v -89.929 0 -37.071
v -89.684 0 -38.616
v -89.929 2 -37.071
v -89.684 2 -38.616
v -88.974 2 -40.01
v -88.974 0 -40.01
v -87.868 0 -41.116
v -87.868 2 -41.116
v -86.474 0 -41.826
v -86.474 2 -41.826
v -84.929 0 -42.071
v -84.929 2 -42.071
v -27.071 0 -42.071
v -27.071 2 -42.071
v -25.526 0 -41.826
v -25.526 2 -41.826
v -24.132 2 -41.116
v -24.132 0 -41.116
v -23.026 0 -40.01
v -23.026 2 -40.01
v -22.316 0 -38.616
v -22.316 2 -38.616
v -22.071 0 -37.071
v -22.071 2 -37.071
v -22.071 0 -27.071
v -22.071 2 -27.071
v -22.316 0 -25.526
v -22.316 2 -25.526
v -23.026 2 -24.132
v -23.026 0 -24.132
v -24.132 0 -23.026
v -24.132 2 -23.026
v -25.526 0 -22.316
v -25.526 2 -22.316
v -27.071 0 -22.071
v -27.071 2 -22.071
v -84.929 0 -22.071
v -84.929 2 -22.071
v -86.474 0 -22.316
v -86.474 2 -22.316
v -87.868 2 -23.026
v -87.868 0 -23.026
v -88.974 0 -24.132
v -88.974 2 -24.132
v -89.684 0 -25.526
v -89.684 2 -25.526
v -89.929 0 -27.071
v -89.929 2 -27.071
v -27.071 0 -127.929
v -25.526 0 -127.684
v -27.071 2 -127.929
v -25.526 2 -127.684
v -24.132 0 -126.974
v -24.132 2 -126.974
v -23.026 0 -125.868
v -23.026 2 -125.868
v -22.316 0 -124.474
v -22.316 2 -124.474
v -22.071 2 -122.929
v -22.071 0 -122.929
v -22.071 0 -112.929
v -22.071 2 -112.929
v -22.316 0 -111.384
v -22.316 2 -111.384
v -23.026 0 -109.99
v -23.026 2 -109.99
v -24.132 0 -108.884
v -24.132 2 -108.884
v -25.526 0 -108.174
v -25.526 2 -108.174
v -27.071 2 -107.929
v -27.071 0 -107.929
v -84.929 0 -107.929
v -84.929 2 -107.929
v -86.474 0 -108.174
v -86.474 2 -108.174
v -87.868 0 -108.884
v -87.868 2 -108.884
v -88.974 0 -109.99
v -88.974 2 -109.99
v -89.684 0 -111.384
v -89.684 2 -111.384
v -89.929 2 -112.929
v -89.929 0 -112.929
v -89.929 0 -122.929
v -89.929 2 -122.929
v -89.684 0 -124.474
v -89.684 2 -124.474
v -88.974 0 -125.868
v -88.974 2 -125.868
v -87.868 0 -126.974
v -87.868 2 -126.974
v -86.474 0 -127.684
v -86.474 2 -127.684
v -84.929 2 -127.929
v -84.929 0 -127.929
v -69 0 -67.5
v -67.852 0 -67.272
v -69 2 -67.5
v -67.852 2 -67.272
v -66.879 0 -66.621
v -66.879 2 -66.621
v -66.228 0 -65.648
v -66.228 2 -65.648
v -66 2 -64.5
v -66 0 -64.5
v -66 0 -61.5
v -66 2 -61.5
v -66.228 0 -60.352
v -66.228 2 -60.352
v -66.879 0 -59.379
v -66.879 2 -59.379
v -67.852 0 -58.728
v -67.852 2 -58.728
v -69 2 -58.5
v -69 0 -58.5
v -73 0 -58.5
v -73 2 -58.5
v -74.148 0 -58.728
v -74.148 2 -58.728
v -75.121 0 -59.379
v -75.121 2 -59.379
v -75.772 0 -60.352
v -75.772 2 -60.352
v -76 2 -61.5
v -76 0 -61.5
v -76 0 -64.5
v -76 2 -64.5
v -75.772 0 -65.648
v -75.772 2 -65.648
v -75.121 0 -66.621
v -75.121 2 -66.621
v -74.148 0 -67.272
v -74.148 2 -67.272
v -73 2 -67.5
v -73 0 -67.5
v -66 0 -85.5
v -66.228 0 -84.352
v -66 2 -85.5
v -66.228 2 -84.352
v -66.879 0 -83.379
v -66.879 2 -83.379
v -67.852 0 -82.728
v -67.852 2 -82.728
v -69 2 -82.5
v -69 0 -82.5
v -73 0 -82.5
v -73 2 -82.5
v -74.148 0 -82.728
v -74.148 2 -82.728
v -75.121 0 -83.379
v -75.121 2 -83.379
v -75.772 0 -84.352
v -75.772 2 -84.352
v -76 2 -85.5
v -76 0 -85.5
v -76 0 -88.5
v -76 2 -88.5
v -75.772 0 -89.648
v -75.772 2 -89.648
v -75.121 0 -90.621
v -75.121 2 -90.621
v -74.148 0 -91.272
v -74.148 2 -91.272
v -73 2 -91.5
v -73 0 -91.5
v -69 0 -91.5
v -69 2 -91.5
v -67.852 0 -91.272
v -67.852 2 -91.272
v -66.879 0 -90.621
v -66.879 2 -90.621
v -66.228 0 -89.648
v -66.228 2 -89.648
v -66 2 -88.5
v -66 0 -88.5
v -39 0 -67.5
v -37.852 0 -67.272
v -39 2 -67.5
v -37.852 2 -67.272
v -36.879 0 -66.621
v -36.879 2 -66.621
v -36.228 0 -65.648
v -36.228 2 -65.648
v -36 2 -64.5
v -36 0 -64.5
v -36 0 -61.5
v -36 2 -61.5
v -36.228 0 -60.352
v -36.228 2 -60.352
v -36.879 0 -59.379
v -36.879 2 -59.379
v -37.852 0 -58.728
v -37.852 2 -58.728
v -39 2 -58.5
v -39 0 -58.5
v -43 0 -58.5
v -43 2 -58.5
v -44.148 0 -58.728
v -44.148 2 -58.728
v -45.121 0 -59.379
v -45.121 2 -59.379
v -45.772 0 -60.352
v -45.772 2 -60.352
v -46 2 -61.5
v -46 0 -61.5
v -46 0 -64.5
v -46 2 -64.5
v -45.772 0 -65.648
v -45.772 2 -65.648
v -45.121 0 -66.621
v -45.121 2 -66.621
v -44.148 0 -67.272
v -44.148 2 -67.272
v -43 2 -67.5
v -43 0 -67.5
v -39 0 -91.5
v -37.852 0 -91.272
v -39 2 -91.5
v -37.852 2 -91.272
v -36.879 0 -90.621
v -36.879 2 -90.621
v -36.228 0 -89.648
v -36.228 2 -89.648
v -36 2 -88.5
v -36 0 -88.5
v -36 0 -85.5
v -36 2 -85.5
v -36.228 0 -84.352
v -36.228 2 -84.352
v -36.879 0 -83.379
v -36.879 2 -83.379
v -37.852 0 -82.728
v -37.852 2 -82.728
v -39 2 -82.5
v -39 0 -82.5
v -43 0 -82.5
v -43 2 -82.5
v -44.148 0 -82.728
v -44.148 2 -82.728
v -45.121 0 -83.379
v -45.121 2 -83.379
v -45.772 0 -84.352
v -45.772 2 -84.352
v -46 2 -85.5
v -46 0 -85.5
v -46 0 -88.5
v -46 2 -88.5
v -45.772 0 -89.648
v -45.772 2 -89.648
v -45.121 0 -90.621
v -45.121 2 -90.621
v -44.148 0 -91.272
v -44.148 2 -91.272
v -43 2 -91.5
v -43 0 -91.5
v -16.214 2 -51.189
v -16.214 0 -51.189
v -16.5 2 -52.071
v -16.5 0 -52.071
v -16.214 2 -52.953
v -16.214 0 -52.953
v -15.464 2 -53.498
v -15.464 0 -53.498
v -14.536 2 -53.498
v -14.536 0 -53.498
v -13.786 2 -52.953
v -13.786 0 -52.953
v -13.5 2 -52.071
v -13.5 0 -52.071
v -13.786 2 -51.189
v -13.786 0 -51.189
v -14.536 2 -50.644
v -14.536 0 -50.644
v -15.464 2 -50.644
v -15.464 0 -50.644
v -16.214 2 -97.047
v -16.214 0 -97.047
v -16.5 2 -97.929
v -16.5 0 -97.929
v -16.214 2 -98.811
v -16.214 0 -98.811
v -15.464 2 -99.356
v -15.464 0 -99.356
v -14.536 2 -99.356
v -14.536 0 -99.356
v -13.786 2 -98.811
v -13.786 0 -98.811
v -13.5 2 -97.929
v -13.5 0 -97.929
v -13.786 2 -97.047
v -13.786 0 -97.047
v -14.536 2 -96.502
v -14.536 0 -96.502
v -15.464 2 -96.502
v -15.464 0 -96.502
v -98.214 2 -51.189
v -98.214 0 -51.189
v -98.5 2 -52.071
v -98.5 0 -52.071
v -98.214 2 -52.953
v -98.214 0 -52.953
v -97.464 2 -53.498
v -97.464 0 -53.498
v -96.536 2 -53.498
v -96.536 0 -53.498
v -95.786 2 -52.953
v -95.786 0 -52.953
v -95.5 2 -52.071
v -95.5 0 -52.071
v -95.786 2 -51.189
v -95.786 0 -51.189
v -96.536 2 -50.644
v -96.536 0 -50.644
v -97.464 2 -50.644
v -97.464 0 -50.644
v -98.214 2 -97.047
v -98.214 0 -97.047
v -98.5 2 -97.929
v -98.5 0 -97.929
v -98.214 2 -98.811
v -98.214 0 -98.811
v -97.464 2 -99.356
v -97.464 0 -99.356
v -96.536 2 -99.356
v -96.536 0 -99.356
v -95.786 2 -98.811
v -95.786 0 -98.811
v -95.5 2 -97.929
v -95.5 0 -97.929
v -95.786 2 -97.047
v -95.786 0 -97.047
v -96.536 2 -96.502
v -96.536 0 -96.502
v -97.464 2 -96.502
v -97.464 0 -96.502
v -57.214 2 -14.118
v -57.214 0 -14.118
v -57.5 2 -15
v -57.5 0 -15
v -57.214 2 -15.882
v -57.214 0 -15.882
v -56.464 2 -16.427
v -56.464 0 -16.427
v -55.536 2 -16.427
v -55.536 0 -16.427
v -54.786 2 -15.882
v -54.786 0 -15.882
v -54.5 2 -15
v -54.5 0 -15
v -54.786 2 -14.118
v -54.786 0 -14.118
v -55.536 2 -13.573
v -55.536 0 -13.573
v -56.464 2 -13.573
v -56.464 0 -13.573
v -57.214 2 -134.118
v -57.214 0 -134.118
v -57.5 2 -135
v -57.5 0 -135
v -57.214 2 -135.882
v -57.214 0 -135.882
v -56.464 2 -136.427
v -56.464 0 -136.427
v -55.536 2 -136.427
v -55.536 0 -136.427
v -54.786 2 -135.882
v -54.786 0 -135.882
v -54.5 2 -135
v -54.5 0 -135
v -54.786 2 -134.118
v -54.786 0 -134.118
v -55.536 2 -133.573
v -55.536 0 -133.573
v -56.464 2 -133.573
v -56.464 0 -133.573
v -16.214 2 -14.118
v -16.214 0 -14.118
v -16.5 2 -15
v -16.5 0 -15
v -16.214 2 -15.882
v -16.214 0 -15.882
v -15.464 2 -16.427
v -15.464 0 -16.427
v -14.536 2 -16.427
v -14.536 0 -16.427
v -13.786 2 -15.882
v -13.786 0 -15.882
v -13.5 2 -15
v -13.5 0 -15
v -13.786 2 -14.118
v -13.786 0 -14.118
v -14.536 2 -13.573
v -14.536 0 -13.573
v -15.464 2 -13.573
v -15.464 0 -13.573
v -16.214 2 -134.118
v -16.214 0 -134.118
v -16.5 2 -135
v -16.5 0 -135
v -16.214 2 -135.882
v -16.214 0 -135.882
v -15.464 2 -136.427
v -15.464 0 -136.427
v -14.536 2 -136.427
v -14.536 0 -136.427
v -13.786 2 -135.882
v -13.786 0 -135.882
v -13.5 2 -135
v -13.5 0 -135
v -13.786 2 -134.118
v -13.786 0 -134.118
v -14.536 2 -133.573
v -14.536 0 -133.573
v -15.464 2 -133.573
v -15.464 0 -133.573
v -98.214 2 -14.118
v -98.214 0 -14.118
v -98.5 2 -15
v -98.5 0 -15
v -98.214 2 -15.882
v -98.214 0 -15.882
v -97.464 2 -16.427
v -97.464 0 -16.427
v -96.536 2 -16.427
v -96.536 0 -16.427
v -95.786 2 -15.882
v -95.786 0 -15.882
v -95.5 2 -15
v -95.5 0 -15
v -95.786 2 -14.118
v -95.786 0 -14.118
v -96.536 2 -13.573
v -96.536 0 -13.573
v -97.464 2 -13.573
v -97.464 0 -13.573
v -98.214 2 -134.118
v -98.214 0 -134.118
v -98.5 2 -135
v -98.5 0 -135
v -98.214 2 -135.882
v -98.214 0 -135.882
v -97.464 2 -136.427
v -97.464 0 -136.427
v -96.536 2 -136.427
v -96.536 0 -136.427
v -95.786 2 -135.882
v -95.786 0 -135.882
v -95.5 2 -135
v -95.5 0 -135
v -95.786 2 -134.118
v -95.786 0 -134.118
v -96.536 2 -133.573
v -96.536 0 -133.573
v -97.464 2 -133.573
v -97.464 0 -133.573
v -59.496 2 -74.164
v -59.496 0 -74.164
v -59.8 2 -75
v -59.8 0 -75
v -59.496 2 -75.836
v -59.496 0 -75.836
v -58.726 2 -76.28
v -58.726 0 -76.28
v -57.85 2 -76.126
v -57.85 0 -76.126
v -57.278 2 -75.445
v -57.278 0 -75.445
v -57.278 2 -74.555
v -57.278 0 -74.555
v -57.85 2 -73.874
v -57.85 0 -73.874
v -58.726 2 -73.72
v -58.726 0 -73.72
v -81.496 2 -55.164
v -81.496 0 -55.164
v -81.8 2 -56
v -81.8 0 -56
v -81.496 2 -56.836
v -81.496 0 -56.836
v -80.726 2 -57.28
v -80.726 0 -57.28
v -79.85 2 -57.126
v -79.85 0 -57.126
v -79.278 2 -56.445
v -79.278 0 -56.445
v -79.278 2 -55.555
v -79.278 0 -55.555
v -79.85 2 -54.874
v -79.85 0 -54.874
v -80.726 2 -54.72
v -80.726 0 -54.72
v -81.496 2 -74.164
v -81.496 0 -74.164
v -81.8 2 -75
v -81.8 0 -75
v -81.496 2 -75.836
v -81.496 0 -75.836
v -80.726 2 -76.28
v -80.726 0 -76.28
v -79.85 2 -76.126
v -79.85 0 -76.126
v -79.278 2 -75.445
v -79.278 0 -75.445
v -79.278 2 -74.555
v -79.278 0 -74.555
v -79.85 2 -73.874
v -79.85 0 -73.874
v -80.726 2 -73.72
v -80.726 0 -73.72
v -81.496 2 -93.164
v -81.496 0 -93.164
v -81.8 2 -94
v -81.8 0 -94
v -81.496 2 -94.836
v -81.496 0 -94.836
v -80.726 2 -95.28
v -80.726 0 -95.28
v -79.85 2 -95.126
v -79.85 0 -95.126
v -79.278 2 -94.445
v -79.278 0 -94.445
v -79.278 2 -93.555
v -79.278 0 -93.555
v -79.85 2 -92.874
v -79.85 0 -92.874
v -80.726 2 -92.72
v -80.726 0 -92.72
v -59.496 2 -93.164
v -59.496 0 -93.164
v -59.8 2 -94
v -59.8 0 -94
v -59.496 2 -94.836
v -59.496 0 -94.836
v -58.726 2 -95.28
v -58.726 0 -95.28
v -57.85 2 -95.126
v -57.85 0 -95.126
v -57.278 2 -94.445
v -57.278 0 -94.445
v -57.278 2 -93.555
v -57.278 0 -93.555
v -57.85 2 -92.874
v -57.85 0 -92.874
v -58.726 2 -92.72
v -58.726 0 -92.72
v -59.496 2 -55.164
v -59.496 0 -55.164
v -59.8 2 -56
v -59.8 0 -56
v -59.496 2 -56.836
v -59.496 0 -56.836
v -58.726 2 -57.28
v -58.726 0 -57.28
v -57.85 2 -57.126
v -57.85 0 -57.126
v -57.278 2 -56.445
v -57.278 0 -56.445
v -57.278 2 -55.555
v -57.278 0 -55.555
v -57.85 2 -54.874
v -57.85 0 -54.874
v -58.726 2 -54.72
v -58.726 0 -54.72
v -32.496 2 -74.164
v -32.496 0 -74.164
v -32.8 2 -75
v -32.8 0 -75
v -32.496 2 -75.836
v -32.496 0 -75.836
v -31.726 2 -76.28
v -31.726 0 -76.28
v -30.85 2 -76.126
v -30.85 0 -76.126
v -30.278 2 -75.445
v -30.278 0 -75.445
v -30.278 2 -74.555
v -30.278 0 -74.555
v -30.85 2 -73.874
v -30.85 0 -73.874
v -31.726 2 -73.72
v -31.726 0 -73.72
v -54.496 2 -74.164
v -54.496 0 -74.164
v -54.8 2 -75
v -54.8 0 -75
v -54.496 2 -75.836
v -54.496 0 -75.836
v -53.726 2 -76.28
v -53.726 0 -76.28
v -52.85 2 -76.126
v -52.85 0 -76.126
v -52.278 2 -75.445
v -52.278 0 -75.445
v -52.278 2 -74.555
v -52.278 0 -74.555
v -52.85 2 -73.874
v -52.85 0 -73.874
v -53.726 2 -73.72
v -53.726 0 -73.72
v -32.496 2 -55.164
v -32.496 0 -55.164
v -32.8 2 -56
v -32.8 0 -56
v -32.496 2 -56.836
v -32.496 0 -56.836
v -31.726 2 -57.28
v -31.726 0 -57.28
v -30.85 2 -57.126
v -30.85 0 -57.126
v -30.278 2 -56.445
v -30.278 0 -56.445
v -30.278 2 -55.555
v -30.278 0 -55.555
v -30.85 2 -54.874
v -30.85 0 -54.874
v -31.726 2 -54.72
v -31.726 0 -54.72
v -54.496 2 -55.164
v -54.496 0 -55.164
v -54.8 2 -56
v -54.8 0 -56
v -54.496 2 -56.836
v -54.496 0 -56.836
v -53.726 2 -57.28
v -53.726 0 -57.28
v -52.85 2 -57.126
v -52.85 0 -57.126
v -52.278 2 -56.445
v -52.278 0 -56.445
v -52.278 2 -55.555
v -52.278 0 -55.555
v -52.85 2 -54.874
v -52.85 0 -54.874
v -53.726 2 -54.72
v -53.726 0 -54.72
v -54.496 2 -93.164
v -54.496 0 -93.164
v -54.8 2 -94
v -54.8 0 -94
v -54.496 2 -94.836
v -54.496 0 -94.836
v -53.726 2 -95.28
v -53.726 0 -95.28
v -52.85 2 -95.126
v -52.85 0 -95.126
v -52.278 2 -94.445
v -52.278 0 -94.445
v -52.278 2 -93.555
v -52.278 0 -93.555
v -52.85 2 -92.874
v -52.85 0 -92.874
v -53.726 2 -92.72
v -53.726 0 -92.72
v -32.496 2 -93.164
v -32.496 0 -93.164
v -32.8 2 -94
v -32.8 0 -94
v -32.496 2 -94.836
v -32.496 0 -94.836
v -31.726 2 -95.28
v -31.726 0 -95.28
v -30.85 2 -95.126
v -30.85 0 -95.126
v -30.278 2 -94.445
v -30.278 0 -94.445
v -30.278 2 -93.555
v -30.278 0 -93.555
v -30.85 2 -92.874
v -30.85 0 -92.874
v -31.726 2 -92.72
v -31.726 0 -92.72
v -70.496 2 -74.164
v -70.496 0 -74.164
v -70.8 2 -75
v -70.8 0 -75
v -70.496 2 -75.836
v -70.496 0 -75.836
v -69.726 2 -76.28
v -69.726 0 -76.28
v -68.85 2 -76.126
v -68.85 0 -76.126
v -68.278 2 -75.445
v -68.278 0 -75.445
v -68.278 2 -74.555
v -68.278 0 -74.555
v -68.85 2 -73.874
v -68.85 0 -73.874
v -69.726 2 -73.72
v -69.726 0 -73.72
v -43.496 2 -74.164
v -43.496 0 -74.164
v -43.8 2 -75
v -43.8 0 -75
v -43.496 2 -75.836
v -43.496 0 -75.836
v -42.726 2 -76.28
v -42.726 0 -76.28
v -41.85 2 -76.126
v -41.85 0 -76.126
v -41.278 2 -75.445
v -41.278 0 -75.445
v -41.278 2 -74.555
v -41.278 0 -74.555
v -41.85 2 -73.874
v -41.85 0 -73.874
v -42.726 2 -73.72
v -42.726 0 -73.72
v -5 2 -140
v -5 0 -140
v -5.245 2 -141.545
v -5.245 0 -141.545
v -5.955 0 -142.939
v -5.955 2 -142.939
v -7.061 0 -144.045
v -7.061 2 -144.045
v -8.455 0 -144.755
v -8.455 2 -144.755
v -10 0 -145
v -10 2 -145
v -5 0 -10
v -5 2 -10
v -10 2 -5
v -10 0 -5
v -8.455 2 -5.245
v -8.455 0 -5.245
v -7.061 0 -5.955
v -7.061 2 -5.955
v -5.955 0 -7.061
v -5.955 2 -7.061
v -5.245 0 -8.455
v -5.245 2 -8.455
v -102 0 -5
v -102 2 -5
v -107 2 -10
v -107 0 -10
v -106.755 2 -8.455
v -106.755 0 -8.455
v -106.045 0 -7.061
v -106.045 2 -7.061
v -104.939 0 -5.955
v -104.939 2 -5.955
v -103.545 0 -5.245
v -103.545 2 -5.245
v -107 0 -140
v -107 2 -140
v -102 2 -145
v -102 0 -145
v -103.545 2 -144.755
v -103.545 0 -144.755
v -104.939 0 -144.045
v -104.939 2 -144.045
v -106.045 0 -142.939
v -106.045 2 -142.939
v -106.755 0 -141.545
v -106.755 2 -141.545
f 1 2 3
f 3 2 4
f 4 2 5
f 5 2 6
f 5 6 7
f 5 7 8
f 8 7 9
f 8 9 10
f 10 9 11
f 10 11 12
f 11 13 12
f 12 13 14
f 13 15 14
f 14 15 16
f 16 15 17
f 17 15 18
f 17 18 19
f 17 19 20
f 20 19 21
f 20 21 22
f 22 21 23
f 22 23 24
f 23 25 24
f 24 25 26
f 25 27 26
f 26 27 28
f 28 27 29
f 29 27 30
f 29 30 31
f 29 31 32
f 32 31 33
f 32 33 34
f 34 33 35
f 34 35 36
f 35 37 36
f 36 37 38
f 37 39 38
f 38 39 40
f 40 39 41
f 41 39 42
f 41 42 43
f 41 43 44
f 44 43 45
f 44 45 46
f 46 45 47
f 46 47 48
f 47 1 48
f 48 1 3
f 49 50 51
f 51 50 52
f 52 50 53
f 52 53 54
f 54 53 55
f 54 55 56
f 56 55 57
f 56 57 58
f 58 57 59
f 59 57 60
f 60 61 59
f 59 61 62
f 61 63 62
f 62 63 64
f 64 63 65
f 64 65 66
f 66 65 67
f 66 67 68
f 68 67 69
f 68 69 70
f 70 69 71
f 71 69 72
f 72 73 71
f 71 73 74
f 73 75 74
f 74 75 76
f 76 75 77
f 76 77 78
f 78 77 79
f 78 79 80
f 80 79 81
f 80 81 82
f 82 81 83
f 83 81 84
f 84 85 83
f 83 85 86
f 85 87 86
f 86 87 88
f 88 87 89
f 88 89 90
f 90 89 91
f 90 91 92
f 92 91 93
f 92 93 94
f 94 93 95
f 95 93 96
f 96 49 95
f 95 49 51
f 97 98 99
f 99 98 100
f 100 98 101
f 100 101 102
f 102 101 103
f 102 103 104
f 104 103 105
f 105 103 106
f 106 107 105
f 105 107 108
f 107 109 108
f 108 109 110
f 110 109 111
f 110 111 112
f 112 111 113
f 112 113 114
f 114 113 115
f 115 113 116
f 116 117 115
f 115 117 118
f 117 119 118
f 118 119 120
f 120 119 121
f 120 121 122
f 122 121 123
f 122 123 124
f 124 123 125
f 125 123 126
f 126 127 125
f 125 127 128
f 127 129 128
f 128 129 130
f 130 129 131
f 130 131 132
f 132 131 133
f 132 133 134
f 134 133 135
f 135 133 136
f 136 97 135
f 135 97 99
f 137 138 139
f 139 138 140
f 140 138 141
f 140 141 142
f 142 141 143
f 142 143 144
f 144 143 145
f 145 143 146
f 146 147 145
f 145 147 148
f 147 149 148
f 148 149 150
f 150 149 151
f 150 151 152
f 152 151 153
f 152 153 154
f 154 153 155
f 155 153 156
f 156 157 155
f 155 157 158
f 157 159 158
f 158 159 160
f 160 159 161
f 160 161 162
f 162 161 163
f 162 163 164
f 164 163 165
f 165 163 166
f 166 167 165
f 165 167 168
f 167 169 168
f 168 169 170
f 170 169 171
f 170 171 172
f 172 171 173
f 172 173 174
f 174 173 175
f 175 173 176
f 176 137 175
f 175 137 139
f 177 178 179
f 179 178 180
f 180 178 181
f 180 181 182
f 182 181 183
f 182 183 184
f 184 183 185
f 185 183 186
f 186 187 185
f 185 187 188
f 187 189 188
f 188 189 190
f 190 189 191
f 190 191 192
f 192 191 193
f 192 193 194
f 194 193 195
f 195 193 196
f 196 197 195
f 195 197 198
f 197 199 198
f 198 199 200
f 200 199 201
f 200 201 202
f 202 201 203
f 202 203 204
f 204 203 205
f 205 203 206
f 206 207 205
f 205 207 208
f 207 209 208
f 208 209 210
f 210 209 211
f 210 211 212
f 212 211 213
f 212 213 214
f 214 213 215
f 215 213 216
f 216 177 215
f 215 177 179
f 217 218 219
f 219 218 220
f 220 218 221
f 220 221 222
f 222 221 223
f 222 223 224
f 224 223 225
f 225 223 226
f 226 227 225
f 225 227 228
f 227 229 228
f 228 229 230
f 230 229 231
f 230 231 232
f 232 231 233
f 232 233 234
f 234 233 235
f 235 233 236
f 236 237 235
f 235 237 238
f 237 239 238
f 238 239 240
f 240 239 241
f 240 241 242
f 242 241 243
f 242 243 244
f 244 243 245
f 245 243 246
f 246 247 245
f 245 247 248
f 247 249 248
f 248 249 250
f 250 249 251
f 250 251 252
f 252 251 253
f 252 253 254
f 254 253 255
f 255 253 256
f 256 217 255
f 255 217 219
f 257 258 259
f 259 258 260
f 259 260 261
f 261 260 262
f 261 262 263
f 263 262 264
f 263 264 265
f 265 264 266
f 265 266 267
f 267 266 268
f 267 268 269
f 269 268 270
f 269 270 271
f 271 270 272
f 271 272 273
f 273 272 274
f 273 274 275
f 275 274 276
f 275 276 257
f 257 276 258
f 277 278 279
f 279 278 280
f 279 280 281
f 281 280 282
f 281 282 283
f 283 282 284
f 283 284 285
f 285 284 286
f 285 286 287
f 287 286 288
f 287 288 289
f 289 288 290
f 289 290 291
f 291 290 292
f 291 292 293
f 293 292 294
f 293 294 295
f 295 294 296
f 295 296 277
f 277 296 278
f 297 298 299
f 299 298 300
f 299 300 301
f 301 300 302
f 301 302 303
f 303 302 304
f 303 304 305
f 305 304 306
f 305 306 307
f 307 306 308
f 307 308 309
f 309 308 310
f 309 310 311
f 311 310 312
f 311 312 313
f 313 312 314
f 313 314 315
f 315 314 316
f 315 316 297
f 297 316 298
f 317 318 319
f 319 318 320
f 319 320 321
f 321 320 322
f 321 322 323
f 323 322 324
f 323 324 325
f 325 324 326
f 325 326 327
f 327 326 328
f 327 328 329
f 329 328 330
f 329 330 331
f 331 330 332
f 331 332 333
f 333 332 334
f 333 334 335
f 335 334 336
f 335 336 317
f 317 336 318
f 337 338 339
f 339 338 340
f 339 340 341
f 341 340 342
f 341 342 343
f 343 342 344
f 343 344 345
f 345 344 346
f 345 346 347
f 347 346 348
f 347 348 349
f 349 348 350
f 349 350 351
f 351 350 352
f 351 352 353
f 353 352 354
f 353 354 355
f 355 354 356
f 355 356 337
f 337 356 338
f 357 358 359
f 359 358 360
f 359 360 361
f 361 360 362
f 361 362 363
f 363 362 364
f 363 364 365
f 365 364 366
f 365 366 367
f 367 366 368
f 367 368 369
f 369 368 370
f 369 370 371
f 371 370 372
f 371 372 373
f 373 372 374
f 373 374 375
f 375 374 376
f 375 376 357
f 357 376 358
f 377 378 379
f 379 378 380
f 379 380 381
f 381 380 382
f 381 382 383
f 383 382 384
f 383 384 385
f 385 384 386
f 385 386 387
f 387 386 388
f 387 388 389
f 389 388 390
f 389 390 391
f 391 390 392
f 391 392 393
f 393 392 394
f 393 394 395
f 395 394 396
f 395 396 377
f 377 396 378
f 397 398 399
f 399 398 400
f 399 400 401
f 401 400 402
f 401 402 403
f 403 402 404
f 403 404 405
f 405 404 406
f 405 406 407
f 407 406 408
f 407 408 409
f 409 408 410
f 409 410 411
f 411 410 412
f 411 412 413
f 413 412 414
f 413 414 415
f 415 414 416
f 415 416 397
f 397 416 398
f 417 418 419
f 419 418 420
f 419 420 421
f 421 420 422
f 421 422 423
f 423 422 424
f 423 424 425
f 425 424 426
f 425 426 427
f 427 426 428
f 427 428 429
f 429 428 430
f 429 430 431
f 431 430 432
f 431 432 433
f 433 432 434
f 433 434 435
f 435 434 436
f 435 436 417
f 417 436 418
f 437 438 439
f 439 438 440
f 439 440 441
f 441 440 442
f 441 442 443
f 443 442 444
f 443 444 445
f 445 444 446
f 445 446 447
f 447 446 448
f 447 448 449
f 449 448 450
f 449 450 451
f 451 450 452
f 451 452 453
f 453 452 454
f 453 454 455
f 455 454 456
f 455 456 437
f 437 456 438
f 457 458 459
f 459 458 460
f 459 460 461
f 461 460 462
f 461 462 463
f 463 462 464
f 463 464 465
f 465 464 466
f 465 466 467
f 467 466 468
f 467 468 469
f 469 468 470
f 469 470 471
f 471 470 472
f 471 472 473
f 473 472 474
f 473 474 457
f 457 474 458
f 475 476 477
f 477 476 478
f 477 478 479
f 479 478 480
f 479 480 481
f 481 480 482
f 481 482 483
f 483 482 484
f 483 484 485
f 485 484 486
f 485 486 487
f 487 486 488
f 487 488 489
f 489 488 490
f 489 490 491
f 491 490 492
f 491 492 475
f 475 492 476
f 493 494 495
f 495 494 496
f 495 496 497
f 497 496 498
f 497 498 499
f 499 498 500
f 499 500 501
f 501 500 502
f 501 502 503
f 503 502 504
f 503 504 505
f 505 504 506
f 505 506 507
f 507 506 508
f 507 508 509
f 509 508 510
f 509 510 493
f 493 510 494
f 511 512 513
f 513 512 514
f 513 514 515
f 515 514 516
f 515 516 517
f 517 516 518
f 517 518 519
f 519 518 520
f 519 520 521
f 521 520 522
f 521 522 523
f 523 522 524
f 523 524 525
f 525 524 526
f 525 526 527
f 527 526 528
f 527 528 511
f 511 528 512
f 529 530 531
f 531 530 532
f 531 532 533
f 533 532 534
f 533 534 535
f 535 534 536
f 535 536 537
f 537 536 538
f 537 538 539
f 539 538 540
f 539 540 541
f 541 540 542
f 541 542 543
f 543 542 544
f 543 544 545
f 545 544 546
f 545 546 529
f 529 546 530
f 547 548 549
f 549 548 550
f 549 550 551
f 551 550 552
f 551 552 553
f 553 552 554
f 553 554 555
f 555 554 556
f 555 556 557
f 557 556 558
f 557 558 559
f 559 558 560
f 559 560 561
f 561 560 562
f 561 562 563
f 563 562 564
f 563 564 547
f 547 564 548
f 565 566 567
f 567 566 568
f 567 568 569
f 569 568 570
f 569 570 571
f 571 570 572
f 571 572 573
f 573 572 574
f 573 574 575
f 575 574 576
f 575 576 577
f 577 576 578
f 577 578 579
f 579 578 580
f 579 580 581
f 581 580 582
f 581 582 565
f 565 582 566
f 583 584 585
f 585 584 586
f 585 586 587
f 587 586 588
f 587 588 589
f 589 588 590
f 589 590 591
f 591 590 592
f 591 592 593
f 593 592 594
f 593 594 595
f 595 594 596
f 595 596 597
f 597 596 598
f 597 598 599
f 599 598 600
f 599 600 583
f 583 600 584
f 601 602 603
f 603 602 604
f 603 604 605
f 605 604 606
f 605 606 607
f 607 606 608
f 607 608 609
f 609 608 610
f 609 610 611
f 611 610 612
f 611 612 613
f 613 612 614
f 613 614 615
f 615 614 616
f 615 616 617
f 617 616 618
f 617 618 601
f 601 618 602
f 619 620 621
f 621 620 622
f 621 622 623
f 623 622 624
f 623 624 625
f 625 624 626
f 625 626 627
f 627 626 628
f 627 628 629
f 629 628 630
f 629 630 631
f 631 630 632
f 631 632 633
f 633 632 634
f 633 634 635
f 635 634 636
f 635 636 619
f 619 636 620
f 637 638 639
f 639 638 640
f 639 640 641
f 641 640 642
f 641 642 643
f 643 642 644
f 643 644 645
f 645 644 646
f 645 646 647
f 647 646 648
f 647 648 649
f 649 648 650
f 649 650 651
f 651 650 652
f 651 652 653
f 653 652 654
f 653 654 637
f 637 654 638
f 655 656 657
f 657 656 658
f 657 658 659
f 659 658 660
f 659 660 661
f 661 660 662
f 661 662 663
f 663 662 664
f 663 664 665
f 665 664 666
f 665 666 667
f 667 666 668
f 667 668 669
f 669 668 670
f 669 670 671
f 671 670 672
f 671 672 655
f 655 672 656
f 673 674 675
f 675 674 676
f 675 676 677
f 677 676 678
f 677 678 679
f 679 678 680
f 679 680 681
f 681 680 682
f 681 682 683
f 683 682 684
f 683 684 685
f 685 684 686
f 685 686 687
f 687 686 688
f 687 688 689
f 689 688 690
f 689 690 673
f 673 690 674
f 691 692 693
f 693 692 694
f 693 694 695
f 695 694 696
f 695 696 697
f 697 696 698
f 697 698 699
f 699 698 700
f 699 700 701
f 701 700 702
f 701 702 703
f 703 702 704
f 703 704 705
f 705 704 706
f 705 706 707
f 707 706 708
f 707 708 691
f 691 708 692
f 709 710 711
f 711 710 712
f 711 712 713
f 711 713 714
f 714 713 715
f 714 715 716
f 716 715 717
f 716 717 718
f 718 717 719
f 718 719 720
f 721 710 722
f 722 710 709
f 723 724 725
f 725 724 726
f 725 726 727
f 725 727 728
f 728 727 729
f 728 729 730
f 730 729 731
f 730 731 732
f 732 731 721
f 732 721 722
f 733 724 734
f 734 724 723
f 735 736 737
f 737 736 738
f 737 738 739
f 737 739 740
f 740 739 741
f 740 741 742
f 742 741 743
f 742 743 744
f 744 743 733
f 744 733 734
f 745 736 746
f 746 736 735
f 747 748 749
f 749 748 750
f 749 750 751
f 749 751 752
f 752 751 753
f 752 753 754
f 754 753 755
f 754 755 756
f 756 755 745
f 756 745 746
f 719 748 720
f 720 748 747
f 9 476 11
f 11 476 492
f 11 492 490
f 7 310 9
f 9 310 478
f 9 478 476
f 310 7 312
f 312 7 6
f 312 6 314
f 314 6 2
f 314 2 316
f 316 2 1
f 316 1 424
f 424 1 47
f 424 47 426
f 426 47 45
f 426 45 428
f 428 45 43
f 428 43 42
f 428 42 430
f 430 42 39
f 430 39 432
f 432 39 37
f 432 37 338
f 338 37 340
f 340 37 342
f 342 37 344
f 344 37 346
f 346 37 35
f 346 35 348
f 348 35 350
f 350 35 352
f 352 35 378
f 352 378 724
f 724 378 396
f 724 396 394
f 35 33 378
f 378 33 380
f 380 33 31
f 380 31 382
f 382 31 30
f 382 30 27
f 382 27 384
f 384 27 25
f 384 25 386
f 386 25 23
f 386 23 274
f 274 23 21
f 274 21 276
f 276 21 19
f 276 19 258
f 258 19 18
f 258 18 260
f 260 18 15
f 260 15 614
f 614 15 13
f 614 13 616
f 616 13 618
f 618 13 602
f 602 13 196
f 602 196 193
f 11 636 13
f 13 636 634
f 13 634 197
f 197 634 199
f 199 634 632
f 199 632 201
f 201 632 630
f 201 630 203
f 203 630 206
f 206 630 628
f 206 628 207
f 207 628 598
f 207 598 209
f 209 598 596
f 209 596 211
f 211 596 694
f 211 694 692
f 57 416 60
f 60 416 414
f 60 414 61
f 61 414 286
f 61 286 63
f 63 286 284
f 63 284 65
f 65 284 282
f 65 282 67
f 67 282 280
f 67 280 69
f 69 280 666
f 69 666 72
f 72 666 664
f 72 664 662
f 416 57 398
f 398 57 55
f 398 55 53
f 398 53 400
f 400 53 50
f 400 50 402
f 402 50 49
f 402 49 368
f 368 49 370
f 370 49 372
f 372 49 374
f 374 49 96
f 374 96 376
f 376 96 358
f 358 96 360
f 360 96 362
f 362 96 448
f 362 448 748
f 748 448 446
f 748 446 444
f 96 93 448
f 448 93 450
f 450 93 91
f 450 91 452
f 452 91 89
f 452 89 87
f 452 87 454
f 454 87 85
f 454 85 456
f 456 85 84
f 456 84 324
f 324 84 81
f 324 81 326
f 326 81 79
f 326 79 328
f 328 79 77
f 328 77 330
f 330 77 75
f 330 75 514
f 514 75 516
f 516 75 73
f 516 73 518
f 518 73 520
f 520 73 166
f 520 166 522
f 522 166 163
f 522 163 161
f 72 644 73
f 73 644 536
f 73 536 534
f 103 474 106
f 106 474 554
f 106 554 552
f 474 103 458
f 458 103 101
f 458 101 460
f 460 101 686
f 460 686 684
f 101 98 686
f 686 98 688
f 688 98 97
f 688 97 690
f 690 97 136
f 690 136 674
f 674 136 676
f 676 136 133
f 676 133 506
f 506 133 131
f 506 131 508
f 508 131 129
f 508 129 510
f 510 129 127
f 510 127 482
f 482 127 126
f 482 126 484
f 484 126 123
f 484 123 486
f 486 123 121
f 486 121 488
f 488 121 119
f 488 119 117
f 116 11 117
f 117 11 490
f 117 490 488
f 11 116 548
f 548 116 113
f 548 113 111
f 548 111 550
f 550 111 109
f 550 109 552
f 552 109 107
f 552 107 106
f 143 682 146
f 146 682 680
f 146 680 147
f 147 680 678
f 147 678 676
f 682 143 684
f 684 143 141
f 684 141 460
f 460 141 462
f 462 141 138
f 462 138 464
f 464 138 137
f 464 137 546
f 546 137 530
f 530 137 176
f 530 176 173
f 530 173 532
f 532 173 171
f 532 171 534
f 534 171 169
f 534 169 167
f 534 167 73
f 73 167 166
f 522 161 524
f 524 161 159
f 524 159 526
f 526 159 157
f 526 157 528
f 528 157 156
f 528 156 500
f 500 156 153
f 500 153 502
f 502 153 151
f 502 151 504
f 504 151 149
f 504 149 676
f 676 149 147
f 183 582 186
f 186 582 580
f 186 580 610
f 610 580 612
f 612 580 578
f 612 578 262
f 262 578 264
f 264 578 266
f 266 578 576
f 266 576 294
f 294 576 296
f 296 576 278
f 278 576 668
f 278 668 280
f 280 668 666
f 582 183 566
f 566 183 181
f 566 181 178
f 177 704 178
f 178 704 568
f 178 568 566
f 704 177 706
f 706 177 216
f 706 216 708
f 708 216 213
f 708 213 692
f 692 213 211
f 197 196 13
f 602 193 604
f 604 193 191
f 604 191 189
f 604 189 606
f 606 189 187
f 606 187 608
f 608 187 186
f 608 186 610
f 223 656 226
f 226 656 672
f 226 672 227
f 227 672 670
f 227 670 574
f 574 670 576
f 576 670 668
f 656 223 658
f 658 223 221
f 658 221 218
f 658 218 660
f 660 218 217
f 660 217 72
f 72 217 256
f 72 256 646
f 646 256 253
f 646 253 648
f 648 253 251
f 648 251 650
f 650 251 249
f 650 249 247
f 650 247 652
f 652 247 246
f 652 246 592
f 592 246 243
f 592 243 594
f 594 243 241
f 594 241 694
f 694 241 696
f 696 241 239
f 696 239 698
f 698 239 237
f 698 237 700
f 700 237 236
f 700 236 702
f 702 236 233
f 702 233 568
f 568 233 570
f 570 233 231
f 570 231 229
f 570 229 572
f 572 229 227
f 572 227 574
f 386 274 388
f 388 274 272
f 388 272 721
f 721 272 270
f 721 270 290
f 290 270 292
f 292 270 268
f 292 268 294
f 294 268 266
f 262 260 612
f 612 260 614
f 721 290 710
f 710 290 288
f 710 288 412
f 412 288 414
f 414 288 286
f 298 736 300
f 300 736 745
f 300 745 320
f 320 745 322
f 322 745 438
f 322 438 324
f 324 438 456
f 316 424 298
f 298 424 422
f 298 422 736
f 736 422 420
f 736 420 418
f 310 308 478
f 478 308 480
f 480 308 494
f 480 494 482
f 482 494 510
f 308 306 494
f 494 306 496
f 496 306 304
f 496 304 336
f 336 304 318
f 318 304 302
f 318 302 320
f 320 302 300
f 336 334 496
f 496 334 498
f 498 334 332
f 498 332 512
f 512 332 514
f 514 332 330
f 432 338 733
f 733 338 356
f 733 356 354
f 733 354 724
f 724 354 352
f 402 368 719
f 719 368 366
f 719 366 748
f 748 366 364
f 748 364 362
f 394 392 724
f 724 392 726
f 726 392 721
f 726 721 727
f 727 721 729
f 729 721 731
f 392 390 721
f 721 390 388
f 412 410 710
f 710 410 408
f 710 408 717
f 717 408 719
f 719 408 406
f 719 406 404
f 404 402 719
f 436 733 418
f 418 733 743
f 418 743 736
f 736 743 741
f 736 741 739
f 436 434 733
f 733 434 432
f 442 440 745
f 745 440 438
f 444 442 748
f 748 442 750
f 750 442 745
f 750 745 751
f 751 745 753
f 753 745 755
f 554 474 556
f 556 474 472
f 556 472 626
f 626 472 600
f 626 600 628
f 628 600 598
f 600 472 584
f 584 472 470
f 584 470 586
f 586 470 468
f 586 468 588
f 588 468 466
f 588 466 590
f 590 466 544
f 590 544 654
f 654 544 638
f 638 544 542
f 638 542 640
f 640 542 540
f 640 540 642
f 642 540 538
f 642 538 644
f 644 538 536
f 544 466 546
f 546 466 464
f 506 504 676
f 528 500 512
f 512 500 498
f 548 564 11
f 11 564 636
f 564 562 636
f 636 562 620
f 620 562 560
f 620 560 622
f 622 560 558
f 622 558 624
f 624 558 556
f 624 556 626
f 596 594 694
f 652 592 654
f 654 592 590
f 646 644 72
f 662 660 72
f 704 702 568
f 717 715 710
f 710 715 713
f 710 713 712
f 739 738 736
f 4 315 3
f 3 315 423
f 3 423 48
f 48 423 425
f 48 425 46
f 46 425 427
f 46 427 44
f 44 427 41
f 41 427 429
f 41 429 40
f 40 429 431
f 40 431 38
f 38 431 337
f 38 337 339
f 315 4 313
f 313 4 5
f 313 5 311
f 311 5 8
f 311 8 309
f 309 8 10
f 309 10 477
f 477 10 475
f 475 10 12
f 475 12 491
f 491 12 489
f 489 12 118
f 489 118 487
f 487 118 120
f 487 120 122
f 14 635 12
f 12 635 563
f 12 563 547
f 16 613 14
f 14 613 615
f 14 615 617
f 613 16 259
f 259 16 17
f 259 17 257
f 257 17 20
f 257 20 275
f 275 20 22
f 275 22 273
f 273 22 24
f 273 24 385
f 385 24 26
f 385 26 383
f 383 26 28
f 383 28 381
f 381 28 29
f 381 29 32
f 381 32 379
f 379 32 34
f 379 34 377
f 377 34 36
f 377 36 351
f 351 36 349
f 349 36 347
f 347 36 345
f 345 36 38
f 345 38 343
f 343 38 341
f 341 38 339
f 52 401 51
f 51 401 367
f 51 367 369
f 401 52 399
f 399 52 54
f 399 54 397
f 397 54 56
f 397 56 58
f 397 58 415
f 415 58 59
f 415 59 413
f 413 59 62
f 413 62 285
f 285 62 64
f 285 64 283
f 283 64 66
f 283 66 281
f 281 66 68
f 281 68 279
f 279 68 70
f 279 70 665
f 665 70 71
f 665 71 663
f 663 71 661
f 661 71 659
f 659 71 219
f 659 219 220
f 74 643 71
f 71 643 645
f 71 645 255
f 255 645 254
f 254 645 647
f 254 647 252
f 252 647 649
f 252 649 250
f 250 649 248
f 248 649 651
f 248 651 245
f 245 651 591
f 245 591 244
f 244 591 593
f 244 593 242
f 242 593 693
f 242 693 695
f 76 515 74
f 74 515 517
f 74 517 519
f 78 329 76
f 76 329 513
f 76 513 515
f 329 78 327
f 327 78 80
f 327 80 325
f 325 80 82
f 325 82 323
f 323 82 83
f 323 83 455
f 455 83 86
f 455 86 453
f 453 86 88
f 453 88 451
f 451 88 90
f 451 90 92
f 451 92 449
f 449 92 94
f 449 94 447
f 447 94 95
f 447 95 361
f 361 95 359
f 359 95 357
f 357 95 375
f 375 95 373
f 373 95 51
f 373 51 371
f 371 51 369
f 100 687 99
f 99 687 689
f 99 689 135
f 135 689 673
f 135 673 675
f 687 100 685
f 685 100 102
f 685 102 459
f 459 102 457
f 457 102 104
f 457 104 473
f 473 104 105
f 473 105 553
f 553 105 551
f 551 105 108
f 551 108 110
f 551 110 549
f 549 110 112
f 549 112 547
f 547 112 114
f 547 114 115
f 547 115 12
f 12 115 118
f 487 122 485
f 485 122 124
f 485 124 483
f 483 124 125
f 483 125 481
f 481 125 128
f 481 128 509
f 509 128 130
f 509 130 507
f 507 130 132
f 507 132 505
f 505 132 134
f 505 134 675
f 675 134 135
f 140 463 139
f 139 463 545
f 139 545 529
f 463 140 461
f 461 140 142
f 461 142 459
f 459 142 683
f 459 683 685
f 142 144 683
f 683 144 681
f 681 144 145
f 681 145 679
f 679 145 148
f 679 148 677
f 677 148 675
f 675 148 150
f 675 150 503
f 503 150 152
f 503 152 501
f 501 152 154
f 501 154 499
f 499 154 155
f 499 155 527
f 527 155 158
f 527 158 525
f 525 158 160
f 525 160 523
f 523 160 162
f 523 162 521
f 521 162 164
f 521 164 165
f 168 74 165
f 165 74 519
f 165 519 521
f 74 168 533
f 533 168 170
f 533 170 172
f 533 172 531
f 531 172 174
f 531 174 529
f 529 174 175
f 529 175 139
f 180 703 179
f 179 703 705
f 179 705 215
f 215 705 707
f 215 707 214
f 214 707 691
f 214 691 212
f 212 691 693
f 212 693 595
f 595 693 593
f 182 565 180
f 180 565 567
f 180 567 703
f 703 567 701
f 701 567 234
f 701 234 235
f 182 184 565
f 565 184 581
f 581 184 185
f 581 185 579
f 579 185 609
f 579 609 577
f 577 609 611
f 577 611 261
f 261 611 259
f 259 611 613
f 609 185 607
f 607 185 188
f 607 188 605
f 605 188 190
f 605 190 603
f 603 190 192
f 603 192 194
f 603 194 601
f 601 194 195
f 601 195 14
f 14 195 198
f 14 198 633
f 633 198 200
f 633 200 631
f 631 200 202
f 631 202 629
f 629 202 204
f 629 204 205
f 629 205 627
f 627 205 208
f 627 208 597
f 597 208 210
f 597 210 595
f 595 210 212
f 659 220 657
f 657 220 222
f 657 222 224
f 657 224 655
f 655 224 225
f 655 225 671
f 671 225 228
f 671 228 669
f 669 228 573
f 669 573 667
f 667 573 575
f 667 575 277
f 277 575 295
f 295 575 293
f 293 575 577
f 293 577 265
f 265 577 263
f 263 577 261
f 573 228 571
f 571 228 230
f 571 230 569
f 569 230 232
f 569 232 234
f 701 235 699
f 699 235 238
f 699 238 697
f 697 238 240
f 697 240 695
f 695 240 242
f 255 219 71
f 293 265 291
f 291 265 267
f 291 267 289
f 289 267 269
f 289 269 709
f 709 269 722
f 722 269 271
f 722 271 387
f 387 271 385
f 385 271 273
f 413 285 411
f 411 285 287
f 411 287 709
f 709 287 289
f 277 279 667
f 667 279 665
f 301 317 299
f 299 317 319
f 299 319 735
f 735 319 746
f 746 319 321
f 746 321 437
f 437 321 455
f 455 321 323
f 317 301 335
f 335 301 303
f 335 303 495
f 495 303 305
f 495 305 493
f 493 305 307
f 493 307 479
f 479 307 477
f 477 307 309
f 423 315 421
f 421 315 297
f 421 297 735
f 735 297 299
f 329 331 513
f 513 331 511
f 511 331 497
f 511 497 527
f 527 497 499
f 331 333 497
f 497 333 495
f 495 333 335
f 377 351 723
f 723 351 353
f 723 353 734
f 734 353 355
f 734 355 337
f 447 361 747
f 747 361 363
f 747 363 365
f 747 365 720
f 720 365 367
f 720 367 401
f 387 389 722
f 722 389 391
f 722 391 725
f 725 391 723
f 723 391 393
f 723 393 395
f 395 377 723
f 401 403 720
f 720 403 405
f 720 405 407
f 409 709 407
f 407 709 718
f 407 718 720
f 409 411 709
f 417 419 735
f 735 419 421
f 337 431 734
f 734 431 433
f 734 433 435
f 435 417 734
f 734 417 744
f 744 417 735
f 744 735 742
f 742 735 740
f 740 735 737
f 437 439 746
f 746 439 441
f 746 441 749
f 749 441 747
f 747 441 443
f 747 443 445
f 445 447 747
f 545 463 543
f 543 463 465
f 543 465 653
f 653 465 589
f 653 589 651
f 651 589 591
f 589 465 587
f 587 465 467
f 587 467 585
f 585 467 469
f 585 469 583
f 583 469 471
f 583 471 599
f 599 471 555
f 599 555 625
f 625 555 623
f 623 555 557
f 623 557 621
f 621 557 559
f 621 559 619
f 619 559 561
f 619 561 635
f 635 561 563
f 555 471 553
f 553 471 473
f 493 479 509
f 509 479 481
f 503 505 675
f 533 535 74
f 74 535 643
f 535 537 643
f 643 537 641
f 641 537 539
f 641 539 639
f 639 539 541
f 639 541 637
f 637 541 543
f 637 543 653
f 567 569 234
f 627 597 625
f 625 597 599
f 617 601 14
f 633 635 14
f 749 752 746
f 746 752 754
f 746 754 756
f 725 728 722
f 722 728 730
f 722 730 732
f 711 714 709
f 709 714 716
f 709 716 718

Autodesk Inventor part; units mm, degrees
ref_plane "YZ Plane" through (0, 0, 0) normal (1, 0, 0) x (0, 1, 0)
ref_plane "XZ Plane" through (0, 0, 0) normal (0, 1, 0) x (-1, 0, 0)
ref_plane "XY Plane" through (0, 0, 0) normal (0, 0, 1) x (1, 0, 0)
sketch "Sketch1" plane through (0, 0, 0) normal (0, 1, 0) x (-1, 0, 0)
  circle A0 centre (97, -135) radius 1.5
  circle A1 centre (97, -15) radius 1.5
  circle A2 centre (15, -135) radius 1.5
  circle A3 centre (15, -15) radius 1.5
  circle A4 centre (56, -135) radius 1.5
  circle A5 centre (56, -15) radius 1.5
  circle A6 centre (97, -97.9289) radius 1.5
  circle A7 centre (97, -52.0711) radius 1.5
  circle A8 centre (15, -97.9289) radius 1.5
  circle A9 centre (15, -52.0711) radius 1.5
  circle A10 centre (31.5, -94) radius 1.3
  circle A11 centre (53.5, -94) radius 1.3
  circle A12 centre (53.5, -56) radius 1.3
  circle A13 centre (31.5, -56) radius 1.3
  circle A14 centre (53.5, -75) radius 1.3
  circle A15 centre (31.5, -75) radius 1.3
  line L0 (84.9289, -42.0711) -> (27.0711, -42.0711)
  line L1 (22.0711, -37.0711) -> (22.0711, -27.0711)
  line L2 (27.0711, -22.0711) -> (84.9289, -22.0711)
  line L3 (89.9289, -27.0711) -> (89.9289, -37.0711)
  line L4 (27.0711, -127.9289) -> (84.9289, -127.9289)
  line L5 (89.9289, -122.9289) -> (89.9289, -112.9289)
  line L6 (84.9289, -107.9289) -> (27.0711, -107.9289)
  line L7 (22.0711, -112.9289) -> (22.0711, -122.9289)
  line L8 (39, -91.5) -> (43, -91.5)
  line L9 (46, -88.5) -> (46, -85.5)
  line L10 (43, -82.5) -> (39, -82.5)
  line L11 (36, -85.5) -> (36, -88.5)
  line L12 (43, -58.5) -> (39, -58.5)
  line L13 (36, -61.5) -> (36, -64.5)
  line L14 (39, -67.5) -> (43, -67.5)
  line L15 (46, -64.5) -> (46, -61.5)
  arc A16 (84.9289, -127.9289) -> (89.9289, -122.9289) centre (84.9289, -122.9289) ccw
  arc A17 (22.0711, -122.9289) -> (27.0711, -127.9289) centre (27.0711, -122.9289) ccw
  arc A18 (27.0711, -107.9289) -> (22.0711, -112.9289) centre (27.0711, -112.9289) ccw
  arc A19 (89.9289, -112.9289) -> (84.9289, -107.9289) centre (84.9289, -112.9289) ccw
  arc A20 (84.9289, -42.0711) -> (89.9289, -37.0711) centre (84.9289, -37.0711) ccw
  arc A21 (89.9289, -27.0711) -> (84.9289, -22.0711) centre (84.9289, -27.0711) ccw
  arc A22 (27.0711, -22.0711) -> (22.0711, -27.0711) centre (27.0711, -27.0711) ccw
  arc A23 (22.0711, -37.0711) -> (27.0711, -42.0711) centre (27.0711, -37.0711) ccw
  arc A24 (43, -91.5) -> (46, -88.5) centre (43, -88.5) ccw
  arc A25 (36, -88.5) -> (39, -91.5) centre (39, -88.5) ccw
  arc A26 (39, -82.5) -> (36, -85.5) centre (39, -85.5) ccw
  arc A27 (46, -85.5) -> (43, -82.5) centre (43, -85.5) ccw
  arc A28 (43, -67.5) -> (46, -64.5) centre (43, -64.5) ccw
  arc A29 (36, -64.5) -> (39, -67.5) centre (39, -64.5) ccw
  arc A30 (39, -58.5) -> (36, -61.5) centre (39, -61.5) ccw
  arc A31 (46, -61.5) -> (43, -58.5) centre (43, -61.5) ccw
  circle A32 centre (42.5, -75) radius 1.3
  circle A33 centre (80.5, -94) radius 1.3
  circle A34 centre (58.5, -94) radius 1.3
  circle A35 centre (58.5, -56) radius 1.3
  circle A36 centre (80.5, -56) radius 1.3
  circle A37 centre (58.5, -75) radius 1.3
  circle A38 centre (80.5, -75) radius 1.3
  line L16 (73, -91.5) -> (69, -91.5)
  line L17 (66, -88.5) -> (66, -85.5)
  line L18 (69, -82.5) -> (73, -82.5)
  line L19 (76, -85.5) -> (76, -88.5)
  line L20 (69, -58.5) -> (73, -58.5)
  line L21 (76, -61.5) -> (76, -64.5)
  line L22 (73, -67.5) -> (69, -67.5)
  line L23 (66, -64.5) -> (66, -61.5)
  arc A39 (66, -88.5) -> (69, -91.5) centre (69, -88.5) ccw
  arc A40 (73, -91.5) -> (76, -88.5) centre (73, -88.5) ccw
  arc A41 (76, -85.5) -> (73, -82.5) centre (73, -85.5) ccw
  arc A42 (69, -82.5) -> (66, -85.5) centre (69, -85.5) ccw
  arc A43 (66, -64.5) -> (69, -67.5) centre (69, -64.5) ccw
  arc A44 (73, -67.5) -> (76, -64.5) centre (73, -64.5) ccw
  arc A45 (76, -61.5) -> (73, -58.5) centre (73, -61.5) ccw
  arc A46 (69, -58.5) -> (66, -61.5) centre (69, -61.5) ccw
  circle A47 centre (69.5, -75) radius 1.3
  line L24 (10, -5) -> (102, -5)
  line L25 (107, -10) -> (107, -140)
  line L26 (102, -145) -> (10, -145)
  line L27 (5, -140) -> (5, -10)
  arc A48 (102, -145) -> (107, -140) centre (102, -140) ccw
  arc A49 (5, -140) -> (10, -145) centre (10, -140) ccw
  arc A50 (10, -5) -> (5, -10) centre (10, -10) ccw
  arc A51 (107, -10) -> (102, -5) centre (102, -10) ccw
  dimension "d24" = 3
  dimension "d25" = 3
  dimension "d26" = 3
  dimension "d27" = 3
  dimension "d28" = 3
  dimension "d29" = 3
  dimension "d30" = 3
  dimension "d32" = 3
  dimension "d47" = 5
  dimension "d48" = 5
  dimension "d59" = 5
  dimension "d60" = 10
  dimension "d61" = 10
  dimension "d67" = 2.6
  dimension "d71" = 140
  dimension "d72" = 102
extrude "Extrusion2" add sketch "Sketch1" along normal blind 2
properties part number "Telapak"
